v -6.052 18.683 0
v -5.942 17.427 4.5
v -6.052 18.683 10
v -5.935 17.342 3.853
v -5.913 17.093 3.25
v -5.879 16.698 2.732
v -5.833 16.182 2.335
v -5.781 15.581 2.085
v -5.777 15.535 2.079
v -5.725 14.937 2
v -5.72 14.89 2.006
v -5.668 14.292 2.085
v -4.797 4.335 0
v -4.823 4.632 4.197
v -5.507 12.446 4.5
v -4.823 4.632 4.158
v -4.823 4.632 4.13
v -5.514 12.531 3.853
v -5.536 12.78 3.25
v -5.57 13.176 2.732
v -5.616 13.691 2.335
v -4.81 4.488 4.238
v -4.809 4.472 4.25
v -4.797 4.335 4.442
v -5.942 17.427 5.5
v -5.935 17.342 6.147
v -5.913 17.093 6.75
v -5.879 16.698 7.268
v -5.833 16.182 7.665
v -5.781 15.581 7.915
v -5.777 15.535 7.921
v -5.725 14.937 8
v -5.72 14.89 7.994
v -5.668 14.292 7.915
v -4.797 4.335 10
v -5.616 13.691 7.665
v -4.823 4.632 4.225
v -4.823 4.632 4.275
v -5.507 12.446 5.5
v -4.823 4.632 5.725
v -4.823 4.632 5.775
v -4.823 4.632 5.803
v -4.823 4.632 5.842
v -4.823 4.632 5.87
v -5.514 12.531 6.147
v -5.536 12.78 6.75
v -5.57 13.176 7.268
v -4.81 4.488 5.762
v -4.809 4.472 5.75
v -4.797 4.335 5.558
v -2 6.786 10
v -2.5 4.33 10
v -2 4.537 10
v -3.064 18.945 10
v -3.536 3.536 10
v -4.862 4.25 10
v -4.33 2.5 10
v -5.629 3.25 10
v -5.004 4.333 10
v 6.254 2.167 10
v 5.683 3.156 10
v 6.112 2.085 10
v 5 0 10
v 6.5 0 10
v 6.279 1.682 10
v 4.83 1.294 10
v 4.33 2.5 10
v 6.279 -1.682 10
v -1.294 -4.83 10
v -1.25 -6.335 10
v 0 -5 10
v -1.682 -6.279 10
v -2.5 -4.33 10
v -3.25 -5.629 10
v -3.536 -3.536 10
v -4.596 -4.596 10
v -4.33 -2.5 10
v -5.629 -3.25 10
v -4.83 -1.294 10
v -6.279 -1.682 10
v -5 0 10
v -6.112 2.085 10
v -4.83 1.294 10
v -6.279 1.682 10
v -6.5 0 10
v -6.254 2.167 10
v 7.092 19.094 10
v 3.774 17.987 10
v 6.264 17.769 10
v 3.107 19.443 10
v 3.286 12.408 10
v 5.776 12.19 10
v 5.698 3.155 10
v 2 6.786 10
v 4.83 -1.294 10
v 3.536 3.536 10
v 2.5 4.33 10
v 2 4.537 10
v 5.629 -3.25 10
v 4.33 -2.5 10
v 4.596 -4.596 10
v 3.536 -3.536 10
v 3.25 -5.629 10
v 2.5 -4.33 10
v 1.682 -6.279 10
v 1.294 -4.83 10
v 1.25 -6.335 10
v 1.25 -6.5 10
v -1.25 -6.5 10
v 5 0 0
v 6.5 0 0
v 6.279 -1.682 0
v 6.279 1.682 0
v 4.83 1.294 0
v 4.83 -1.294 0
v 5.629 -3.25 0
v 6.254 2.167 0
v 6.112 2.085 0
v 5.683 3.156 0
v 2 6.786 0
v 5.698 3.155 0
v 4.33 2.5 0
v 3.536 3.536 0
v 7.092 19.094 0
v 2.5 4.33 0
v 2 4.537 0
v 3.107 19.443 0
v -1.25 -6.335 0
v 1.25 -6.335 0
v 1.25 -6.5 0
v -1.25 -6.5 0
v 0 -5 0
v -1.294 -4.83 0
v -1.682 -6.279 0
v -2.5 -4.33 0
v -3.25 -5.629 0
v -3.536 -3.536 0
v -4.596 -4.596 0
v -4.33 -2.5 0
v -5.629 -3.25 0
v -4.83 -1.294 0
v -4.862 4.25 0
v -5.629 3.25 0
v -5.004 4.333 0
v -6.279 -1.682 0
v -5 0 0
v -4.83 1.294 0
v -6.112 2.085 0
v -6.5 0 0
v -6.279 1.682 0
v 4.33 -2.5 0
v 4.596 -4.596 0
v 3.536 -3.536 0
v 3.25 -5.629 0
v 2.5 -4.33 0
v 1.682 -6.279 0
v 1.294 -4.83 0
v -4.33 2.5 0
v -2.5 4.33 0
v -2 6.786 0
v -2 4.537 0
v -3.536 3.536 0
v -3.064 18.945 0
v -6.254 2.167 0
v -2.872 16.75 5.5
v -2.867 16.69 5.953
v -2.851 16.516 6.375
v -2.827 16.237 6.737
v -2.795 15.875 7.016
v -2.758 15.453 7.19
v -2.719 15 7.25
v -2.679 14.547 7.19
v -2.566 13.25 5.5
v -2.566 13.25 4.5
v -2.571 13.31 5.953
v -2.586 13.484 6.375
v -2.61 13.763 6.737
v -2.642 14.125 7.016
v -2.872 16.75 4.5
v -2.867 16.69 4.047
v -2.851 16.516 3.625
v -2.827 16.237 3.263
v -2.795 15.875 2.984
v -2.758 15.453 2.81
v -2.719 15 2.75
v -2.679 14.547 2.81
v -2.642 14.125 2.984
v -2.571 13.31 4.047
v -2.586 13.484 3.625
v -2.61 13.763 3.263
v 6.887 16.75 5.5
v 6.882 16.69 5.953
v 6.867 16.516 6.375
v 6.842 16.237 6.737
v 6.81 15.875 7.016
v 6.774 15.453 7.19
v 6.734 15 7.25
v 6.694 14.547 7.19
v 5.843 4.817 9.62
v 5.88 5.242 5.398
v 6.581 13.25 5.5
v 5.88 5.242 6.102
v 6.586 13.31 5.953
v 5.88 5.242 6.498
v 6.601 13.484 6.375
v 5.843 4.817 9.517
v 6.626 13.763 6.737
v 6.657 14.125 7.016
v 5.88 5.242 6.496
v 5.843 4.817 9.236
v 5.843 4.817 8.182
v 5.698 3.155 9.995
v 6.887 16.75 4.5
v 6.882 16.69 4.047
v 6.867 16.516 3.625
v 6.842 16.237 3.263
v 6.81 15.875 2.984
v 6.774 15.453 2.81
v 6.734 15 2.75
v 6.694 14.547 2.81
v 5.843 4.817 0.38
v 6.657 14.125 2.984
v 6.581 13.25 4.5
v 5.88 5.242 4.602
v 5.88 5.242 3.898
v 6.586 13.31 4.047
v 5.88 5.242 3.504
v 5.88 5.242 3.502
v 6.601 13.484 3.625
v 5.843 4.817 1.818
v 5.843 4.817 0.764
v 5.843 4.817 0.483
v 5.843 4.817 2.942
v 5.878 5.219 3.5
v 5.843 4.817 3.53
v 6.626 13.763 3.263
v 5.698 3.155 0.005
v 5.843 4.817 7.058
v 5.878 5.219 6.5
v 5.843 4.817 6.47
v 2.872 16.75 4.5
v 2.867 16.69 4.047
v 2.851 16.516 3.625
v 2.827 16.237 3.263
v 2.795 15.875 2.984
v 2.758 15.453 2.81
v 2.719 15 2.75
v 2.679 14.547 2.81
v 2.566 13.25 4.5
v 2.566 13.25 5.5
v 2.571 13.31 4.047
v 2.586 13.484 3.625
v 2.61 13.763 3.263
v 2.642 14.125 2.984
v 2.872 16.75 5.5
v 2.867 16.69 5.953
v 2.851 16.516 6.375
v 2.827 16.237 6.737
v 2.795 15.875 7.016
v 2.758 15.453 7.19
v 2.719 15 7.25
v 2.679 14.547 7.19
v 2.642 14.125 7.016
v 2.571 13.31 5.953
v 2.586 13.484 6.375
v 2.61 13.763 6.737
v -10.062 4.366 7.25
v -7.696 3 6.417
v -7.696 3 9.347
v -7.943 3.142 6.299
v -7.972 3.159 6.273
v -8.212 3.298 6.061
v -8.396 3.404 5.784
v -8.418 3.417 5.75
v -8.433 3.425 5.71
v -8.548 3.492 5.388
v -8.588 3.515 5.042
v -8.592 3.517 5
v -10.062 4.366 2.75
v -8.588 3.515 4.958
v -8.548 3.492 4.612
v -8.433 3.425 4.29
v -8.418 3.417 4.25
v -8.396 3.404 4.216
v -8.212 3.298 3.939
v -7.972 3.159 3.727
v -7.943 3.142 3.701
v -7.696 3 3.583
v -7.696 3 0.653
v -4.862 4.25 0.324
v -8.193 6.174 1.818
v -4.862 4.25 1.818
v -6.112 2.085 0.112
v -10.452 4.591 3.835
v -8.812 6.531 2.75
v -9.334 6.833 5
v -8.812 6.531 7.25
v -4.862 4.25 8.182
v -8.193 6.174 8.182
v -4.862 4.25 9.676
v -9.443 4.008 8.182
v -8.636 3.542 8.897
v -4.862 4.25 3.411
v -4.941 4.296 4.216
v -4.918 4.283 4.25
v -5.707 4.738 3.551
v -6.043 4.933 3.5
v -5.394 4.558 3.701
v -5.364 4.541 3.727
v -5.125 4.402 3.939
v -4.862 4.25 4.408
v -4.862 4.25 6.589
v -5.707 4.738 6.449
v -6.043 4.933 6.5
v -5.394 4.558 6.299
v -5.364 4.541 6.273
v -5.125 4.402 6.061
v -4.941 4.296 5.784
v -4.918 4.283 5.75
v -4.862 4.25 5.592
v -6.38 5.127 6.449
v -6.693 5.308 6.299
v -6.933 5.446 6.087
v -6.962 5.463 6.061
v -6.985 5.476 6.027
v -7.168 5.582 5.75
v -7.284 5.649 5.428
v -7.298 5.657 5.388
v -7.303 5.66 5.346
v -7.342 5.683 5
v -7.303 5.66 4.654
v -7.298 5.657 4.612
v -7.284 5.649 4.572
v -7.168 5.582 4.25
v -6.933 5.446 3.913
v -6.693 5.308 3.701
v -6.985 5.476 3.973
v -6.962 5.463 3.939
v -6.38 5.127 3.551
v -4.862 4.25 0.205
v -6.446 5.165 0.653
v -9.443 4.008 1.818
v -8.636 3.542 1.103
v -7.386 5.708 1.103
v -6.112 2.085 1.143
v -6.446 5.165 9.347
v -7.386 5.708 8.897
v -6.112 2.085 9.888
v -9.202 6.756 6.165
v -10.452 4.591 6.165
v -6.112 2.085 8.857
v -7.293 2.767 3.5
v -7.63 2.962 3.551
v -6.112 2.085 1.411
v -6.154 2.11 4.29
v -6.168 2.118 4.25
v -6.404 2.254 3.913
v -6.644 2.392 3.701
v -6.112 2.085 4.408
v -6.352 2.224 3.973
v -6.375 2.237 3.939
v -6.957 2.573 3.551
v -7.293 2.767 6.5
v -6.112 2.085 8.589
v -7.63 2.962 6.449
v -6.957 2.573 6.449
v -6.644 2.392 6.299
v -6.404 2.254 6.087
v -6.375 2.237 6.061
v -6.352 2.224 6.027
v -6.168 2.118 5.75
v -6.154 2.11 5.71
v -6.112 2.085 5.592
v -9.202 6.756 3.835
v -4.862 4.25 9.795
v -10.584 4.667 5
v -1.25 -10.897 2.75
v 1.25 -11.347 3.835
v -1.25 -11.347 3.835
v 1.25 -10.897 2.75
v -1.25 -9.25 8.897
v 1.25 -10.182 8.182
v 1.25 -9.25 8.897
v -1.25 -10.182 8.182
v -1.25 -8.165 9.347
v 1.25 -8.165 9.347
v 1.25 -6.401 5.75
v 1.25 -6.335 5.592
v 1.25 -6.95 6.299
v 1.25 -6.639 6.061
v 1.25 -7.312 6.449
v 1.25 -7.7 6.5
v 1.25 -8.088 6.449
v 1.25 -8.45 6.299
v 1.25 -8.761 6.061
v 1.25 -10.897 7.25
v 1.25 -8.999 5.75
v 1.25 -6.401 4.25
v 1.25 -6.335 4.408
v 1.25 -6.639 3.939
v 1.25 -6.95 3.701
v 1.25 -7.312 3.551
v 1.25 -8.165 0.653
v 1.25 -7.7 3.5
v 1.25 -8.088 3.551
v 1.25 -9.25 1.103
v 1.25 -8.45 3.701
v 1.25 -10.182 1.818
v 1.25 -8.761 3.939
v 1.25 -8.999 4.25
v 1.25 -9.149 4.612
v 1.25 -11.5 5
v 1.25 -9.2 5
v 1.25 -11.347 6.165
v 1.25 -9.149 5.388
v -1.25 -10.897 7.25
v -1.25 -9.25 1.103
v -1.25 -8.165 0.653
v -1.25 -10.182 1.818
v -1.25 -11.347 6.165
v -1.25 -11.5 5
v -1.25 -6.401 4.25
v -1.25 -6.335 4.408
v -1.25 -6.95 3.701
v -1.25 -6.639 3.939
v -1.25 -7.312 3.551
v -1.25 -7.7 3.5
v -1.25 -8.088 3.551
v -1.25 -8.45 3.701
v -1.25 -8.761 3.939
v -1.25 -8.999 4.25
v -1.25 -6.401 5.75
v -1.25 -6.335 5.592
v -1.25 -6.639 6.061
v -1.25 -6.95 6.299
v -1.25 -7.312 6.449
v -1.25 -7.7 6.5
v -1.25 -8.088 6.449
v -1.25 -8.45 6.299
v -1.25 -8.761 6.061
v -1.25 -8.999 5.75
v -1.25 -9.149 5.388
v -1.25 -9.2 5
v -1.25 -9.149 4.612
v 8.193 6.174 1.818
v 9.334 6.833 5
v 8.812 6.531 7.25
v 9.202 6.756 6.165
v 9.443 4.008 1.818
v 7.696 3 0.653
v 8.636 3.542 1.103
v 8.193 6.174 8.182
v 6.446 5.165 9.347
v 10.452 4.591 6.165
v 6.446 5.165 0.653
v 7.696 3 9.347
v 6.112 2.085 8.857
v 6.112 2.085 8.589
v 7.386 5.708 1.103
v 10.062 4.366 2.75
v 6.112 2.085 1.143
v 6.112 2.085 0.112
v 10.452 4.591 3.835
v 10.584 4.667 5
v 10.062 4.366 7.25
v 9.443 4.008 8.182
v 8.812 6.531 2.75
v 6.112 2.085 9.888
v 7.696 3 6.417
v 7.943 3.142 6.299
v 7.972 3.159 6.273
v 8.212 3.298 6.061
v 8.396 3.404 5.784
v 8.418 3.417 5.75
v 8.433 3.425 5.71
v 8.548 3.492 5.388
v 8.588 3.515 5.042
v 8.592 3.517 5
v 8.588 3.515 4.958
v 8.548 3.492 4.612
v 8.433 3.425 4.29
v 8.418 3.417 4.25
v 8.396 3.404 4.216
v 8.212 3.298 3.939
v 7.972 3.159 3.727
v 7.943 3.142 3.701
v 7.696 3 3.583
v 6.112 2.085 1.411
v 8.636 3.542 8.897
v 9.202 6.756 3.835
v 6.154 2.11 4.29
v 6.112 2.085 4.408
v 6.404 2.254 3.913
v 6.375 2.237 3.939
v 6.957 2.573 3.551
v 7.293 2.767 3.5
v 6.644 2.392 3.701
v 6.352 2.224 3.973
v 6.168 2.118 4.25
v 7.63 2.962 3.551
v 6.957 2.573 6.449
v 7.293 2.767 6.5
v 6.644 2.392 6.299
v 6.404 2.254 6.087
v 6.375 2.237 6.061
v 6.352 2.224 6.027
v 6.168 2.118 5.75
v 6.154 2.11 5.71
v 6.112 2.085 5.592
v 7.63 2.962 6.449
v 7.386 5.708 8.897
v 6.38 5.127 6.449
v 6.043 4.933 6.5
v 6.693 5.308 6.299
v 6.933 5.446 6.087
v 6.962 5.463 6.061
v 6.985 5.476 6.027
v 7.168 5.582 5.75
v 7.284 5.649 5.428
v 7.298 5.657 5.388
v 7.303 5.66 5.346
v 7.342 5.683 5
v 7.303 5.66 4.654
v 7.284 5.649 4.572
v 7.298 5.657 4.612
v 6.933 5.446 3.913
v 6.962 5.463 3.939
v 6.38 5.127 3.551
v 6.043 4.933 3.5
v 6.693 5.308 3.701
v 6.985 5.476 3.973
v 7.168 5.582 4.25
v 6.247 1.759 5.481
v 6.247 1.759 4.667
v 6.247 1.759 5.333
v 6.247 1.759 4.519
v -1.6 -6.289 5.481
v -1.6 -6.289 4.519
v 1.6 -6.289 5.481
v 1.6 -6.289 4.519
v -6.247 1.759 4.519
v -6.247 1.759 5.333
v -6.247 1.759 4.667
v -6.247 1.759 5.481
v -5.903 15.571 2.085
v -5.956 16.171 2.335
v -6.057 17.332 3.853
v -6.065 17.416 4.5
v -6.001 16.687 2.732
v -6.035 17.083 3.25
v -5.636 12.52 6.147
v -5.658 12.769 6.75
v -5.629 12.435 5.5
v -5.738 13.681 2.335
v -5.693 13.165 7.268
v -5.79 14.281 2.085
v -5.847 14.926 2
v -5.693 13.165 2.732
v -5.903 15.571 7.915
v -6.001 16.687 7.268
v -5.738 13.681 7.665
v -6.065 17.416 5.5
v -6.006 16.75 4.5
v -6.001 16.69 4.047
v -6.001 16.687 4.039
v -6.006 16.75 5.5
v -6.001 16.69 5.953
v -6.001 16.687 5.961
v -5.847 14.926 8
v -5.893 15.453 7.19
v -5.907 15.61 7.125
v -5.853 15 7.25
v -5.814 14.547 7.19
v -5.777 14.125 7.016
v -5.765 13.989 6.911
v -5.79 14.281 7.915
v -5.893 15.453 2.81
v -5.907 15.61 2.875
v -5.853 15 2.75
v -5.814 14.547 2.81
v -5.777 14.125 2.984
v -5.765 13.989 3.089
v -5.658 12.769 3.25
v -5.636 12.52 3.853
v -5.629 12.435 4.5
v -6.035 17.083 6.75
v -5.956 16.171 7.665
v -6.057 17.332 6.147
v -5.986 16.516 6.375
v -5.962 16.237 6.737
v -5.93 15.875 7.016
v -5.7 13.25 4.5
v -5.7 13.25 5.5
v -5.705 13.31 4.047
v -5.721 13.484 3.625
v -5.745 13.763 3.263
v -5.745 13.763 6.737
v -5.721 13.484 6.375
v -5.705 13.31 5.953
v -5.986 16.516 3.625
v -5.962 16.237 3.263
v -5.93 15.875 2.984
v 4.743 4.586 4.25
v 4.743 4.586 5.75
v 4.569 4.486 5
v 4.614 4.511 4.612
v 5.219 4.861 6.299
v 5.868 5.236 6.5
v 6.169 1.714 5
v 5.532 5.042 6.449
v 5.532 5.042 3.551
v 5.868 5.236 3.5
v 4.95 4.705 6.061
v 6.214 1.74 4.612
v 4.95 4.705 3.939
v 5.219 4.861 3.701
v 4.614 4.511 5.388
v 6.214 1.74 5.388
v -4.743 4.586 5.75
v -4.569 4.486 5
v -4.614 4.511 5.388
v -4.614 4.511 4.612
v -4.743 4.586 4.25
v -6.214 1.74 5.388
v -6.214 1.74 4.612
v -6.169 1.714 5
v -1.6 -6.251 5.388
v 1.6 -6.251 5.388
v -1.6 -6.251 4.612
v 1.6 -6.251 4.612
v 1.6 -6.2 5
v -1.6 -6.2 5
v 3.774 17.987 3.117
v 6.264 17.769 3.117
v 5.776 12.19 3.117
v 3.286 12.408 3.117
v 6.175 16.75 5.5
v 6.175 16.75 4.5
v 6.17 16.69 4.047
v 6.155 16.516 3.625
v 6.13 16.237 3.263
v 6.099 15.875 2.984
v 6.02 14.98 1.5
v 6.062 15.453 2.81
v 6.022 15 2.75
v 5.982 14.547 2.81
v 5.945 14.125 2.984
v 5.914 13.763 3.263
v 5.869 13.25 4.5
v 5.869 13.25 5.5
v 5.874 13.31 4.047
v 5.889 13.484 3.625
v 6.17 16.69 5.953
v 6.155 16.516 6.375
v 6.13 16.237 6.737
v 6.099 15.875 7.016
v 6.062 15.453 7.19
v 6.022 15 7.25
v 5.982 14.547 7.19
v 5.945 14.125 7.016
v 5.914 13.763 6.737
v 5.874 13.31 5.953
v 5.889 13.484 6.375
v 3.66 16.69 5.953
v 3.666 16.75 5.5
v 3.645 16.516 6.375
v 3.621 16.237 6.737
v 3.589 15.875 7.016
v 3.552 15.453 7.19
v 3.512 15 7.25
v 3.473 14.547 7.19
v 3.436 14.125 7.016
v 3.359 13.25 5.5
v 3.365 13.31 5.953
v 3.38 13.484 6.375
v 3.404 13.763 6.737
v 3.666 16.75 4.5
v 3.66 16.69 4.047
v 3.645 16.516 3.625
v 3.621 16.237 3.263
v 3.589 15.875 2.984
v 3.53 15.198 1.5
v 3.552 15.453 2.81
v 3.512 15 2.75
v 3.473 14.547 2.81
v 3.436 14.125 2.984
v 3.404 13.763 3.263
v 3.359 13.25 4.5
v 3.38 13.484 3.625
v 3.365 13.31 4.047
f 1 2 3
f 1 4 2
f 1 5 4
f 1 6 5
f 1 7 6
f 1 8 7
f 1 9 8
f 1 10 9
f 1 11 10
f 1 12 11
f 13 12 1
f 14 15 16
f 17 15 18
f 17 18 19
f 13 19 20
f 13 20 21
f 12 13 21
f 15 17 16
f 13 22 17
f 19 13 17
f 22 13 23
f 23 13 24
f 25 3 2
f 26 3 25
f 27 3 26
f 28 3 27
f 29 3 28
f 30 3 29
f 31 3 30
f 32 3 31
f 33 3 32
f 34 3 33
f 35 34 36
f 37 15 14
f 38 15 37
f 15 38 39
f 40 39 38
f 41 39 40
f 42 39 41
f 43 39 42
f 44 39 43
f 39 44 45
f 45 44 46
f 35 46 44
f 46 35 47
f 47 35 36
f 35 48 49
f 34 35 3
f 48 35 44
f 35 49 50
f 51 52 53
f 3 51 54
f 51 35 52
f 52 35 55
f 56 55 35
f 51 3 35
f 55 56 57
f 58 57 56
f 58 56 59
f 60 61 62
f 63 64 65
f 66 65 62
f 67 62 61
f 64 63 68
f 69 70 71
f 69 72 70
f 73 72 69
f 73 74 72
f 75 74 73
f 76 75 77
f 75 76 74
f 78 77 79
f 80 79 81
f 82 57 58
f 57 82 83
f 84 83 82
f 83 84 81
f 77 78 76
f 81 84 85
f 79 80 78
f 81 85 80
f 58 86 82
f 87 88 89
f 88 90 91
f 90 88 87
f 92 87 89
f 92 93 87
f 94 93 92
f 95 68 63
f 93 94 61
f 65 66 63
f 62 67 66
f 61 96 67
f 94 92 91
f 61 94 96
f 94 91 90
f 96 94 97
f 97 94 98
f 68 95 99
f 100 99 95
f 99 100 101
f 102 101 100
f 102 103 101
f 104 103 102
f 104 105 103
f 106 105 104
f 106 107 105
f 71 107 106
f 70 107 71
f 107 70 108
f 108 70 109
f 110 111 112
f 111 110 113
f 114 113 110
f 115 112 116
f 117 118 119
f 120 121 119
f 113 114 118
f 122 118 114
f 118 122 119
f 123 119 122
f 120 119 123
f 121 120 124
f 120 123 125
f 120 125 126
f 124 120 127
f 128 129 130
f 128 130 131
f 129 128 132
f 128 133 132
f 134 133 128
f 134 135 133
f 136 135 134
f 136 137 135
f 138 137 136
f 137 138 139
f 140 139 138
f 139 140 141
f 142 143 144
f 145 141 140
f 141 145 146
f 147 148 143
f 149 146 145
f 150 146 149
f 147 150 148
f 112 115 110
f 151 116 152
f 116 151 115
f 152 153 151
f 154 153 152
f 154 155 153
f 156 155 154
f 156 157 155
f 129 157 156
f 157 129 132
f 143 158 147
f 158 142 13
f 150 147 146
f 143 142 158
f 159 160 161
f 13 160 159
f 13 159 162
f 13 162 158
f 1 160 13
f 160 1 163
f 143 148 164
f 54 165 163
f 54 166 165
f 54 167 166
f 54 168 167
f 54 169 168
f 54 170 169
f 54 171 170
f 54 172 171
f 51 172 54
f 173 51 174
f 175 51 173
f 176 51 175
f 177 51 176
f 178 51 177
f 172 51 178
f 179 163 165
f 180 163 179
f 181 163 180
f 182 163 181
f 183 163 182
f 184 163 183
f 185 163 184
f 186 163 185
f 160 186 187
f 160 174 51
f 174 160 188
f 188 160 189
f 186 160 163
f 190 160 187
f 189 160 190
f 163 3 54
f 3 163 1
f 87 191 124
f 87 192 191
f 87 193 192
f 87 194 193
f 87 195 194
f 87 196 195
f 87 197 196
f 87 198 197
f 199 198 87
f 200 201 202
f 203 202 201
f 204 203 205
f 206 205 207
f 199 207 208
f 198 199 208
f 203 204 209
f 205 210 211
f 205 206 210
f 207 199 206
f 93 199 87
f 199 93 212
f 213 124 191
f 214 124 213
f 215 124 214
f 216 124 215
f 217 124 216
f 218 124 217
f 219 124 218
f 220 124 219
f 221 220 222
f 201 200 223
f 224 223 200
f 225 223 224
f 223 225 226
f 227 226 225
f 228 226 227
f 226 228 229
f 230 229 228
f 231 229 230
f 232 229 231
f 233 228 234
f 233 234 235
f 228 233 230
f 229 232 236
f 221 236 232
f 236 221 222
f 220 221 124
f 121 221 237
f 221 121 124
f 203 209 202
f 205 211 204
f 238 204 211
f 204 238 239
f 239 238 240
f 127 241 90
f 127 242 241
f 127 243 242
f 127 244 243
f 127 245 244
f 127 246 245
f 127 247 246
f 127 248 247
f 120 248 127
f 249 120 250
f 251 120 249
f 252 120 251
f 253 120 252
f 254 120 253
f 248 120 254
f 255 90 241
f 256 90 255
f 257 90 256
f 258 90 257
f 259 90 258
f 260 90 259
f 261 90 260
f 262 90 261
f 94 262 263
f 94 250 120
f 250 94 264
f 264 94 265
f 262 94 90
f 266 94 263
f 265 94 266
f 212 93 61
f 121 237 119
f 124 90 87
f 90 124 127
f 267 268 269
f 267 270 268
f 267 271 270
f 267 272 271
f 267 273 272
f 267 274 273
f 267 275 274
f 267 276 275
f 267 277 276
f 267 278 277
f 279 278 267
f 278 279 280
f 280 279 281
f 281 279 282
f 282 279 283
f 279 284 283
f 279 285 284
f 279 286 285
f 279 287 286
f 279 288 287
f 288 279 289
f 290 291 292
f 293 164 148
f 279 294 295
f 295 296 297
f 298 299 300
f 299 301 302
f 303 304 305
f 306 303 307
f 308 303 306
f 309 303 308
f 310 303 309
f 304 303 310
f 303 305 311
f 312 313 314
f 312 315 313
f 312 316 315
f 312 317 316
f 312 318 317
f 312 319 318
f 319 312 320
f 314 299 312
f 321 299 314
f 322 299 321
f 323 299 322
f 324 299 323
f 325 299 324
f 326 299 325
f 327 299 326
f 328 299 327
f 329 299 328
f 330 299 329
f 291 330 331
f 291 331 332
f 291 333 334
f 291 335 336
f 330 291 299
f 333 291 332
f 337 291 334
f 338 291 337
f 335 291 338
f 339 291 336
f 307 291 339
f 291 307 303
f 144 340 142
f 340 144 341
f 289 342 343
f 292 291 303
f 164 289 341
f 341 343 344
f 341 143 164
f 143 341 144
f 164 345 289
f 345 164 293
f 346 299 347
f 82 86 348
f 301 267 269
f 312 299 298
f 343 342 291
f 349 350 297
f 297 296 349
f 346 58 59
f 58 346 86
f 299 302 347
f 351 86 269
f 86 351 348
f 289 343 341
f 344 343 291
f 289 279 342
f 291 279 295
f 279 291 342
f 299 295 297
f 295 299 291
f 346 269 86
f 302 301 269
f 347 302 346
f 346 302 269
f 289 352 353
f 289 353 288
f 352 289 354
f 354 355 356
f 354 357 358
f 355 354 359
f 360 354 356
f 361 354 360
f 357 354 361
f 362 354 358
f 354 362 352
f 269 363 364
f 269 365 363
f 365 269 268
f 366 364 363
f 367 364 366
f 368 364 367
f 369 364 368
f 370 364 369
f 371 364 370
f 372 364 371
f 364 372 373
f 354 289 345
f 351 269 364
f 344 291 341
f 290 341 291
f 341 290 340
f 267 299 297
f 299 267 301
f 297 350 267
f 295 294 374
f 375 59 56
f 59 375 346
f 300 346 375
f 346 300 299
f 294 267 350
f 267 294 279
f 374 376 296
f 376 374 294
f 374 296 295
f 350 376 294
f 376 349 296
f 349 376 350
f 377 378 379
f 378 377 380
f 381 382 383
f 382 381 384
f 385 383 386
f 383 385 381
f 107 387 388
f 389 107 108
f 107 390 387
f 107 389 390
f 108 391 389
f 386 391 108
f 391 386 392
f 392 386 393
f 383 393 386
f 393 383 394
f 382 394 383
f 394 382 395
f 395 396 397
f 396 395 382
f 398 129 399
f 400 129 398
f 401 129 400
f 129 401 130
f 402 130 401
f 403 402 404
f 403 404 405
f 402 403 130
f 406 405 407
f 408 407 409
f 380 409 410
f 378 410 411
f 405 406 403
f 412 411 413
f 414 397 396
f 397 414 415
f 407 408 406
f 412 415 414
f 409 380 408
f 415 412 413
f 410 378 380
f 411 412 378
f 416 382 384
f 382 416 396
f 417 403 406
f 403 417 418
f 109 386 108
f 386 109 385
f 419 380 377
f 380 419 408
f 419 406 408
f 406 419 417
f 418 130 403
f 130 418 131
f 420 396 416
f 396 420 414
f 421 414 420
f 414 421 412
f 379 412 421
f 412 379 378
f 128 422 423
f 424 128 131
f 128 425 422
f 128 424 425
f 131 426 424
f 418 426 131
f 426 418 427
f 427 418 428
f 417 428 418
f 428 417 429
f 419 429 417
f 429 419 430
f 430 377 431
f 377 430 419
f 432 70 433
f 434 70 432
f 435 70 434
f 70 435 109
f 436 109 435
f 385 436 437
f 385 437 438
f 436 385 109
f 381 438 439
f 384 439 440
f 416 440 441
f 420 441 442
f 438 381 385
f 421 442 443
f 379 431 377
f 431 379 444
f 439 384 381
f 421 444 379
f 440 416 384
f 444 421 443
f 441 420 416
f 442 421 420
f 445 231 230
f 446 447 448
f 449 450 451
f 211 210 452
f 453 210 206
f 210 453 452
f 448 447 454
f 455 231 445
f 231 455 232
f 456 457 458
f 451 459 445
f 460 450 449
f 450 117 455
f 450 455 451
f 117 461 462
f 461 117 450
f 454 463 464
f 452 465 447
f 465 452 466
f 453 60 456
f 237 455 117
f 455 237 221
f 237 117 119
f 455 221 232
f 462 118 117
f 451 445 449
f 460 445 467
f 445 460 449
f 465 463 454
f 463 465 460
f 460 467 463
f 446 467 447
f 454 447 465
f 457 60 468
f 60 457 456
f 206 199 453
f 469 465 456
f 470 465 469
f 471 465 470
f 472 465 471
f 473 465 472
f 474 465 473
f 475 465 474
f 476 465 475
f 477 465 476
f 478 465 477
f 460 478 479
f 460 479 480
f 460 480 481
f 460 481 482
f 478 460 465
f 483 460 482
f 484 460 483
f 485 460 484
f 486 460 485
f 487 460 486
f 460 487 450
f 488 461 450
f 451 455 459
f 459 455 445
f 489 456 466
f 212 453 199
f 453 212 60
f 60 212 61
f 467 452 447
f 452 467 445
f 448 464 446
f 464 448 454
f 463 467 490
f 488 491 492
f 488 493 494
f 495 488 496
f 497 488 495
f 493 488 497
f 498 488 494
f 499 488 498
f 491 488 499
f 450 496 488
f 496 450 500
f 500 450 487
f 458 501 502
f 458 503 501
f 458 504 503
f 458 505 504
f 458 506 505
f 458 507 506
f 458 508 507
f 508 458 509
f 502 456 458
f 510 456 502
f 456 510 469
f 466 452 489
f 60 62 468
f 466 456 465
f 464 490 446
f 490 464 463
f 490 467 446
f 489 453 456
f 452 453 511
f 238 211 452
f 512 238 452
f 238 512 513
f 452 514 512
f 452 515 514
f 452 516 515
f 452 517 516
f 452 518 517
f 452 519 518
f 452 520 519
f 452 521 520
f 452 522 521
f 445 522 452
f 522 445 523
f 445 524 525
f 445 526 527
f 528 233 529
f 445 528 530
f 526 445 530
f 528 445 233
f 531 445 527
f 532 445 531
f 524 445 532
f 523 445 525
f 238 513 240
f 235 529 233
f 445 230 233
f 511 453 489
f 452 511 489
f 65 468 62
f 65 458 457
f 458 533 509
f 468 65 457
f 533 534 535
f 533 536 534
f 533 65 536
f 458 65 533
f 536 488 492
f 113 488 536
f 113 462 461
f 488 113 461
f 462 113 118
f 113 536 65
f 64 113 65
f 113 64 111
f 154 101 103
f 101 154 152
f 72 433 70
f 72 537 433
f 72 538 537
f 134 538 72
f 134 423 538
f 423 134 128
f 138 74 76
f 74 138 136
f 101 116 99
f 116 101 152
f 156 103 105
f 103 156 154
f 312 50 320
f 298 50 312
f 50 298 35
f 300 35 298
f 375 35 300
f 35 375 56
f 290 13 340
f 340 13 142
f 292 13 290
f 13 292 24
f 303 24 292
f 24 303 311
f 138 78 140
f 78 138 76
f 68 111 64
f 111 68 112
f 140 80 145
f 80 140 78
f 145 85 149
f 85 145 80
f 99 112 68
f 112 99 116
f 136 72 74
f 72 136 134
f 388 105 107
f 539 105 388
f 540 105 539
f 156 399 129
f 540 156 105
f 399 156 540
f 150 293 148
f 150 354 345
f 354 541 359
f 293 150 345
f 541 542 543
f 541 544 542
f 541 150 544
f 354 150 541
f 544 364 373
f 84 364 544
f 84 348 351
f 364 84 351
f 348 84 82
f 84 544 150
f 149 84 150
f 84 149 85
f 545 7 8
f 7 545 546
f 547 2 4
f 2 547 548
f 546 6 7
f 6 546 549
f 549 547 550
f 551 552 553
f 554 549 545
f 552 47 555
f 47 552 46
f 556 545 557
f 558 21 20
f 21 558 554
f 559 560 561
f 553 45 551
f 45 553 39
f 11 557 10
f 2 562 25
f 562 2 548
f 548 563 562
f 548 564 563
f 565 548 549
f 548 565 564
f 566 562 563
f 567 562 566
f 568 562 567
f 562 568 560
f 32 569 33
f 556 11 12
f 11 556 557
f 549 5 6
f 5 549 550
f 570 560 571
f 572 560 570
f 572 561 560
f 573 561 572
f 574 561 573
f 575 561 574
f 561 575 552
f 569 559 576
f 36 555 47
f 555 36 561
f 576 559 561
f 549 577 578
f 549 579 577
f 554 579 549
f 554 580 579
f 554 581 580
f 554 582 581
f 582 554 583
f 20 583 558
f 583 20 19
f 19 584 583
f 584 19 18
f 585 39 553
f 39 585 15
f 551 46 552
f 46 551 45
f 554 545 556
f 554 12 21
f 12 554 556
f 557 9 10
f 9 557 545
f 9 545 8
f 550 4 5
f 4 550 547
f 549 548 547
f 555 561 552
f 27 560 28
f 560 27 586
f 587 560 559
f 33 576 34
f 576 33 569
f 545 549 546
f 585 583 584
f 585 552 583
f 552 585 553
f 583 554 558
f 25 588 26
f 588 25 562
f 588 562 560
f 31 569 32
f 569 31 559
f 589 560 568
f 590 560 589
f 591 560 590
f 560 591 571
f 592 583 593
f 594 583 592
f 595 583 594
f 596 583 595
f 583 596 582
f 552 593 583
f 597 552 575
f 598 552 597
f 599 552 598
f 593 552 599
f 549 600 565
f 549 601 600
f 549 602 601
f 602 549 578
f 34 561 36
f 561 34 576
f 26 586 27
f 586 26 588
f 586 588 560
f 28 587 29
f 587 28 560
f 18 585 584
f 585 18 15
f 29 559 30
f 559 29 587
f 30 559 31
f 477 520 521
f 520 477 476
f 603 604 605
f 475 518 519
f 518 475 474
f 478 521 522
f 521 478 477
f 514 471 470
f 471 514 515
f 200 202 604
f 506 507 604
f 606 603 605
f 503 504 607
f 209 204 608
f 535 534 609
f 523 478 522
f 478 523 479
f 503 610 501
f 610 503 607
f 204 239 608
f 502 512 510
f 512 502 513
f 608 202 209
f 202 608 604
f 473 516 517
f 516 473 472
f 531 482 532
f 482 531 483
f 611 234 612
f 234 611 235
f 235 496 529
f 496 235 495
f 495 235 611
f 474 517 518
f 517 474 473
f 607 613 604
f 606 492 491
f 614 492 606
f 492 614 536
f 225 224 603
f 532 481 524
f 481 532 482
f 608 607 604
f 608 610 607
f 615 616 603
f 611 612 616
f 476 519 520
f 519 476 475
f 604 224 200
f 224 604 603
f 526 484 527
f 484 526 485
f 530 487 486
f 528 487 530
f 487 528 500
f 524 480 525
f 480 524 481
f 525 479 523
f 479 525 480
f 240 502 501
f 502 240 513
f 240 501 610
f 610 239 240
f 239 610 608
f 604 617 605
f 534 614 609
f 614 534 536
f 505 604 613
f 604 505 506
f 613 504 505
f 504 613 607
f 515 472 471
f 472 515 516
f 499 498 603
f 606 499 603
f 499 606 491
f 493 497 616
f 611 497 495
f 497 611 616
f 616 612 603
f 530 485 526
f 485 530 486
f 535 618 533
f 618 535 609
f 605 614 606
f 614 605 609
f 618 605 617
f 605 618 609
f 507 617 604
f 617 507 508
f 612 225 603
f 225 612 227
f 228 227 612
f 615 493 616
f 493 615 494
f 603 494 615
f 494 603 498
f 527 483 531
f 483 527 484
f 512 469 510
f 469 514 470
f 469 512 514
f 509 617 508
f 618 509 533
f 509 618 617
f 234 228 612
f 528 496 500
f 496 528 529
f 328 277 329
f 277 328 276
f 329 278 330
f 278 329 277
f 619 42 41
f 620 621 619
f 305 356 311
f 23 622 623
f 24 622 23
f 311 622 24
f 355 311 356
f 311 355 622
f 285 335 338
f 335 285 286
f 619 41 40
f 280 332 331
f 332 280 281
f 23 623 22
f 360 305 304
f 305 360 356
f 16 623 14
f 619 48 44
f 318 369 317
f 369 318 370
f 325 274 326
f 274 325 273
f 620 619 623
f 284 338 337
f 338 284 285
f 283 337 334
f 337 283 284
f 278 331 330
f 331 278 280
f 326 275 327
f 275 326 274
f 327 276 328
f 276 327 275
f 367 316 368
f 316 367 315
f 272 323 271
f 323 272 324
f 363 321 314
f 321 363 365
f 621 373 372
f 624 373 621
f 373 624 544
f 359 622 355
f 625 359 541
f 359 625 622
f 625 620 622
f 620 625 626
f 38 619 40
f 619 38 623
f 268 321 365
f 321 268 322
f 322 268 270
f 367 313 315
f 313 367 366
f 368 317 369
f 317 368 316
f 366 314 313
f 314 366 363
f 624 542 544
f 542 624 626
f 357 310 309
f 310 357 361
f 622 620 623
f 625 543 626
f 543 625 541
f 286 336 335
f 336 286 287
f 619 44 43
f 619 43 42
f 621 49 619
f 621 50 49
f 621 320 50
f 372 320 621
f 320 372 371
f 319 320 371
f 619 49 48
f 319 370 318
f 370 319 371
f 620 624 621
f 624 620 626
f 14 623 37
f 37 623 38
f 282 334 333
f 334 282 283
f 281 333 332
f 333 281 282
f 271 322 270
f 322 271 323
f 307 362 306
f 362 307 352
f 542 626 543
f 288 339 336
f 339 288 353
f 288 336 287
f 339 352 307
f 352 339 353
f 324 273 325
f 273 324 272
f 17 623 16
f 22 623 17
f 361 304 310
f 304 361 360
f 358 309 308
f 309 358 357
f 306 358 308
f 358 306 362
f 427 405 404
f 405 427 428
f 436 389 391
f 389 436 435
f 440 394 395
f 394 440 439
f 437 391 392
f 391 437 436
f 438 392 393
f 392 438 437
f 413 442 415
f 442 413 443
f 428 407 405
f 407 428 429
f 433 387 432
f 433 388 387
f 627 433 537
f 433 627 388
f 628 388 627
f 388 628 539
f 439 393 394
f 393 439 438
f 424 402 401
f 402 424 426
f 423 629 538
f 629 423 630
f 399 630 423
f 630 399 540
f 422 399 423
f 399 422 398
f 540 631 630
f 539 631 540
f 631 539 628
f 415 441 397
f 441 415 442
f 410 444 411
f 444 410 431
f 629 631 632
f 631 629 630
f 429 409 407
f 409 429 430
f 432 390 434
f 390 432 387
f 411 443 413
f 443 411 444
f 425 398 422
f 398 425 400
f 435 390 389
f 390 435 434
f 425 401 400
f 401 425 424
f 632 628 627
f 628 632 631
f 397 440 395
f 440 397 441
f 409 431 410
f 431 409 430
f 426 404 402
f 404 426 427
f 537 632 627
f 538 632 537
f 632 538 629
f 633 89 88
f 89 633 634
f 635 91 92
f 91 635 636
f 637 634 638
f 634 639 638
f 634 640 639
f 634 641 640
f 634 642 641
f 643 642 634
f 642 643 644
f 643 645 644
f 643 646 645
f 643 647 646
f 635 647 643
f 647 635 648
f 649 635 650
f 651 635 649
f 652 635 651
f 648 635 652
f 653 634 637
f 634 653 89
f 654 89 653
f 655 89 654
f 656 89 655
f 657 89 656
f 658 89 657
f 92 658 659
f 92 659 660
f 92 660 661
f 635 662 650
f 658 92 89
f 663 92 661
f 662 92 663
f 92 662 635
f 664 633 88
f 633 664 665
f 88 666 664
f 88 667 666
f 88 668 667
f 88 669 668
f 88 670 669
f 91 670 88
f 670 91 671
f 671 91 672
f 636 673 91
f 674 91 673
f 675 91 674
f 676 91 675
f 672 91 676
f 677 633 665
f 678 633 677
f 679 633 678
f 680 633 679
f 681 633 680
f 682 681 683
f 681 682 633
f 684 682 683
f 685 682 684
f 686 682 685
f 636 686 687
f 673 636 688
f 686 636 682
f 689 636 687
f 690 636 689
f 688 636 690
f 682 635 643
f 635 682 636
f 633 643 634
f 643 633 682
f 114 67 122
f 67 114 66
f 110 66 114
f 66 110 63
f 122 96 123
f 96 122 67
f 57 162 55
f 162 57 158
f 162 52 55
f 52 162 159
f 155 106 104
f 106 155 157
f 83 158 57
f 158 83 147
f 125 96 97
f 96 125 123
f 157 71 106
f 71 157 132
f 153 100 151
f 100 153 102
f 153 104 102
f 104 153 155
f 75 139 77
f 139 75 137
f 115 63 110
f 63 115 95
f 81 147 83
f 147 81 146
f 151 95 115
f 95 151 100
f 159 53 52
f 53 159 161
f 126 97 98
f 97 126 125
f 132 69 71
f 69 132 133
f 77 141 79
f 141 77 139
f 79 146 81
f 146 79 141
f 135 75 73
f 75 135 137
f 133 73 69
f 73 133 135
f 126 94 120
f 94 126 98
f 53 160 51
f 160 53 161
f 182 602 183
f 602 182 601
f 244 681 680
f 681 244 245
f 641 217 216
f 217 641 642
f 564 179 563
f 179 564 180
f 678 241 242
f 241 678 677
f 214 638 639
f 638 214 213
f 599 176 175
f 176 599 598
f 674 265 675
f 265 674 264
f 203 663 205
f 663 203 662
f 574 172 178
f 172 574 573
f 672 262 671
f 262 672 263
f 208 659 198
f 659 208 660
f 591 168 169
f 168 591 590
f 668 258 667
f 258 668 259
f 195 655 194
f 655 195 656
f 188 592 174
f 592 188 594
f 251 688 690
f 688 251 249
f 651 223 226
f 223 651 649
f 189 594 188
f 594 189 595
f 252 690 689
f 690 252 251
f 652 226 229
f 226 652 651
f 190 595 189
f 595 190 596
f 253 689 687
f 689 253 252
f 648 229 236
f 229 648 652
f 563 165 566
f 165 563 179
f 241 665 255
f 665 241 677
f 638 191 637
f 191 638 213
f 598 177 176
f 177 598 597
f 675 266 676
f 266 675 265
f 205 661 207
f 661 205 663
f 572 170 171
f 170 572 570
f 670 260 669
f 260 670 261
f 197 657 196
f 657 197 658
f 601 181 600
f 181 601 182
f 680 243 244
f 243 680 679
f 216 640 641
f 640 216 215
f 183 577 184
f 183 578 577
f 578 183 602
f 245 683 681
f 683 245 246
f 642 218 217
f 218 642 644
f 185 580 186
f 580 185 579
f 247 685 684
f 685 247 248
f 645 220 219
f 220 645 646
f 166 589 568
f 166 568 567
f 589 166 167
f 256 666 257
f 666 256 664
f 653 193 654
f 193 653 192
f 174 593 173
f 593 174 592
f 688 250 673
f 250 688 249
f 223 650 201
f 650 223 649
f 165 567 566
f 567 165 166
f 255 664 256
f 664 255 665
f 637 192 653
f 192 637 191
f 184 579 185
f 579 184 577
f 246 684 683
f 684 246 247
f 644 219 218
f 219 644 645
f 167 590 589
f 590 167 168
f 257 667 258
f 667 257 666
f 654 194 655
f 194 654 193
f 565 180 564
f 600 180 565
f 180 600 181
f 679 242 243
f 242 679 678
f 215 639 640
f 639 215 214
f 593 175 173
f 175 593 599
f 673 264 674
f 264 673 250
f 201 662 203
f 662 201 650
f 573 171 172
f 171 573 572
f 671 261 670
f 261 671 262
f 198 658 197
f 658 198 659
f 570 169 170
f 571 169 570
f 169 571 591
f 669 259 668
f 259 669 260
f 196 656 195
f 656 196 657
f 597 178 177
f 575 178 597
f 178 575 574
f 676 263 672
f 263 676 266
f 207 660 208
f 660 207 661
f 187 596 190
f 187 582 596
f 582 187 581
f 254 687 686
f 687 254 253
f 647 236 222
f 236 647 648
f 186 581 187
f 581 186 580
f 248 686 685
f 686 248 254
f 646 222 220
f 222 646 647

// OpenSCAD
// file: lib/sweep.scad
// sweep.scad
//
// This code is copied from
// https://github.com/openscad/list-comprehension-demos
// and
// https://github.com/openscad/scad-utils
// to make hangprinter repo self-contained
// It was included in order to make the worm drive parametric
// In future OpenSCAD (or other script CAD programs)
// worm drives should be will be more easily constructed without
// this user space defined sweep operation.
// See OpenSCAD discussion at:
// https://github.com/openscad/openscad/issues/114

// Look into files
// lists.scad
// X transformations.scad
// linalg.scad
// se3.scad
// so3.scad


// Include modules and fcts:

/// linalg.scad
function vec3(p) = len(p) < 3 ? concat(p,0) : p;
function vec4(p) = let (v3=vec3(p)) len(v3) < 4 ? concat(v3,1) : v3;
function take3(v) = [v[0],v[1],v[2]];
function tail3(v) = [v[3],v[4],v[5]];
function construct_Rt(R,t) = [concat(R[0],t[0]),concat(R[1],t[1]),concat(R[2],t[2]),[0,0,0,1]];

/// so3.scad

function se3_exp_2(t,w) = se3_exp_2_0(t,w,w*w);
function se3_exp_2_0(t,w,theta_sq) =
se3_exp_23(
	so3_exp_2(theta_sq),
	C = (1.0 - theta_sq/20) / 6,
	t=t,w=w);

// Taylor series expansions close to 0
function so3_exp_1(theta_sq) = [
	1 - 1/6*theta_sq,
	0.5
];

function rodrigues_so3_exp(w, A, B) = [
  [1.0 - B*(w[1]*w[1] + w[2]*w[2]), B*(w[0]*w[1]) - A*w[2],          B*(w[0]*w[2]) + A*w[1]],
  [B*(w[0]*w[1]) + A*w[2],          1.0 - B*(w[0]*w[0] + w[2]*w[2]), B*(w[1]*w[2]) - A*w[0]],
  [B*(w[0]*w[2]) - A*w[1],          B*(w[1]*w[2]) + A*w[0],          1.0 - B*(w[0]*w[0] + w[1]*w[1])]
];

function so3_exp_3_0(theta_deg, inv_theta) = [
	sin(theta_deg) * inv_theta,
	(1 - cos(theta_deg)) * (inv_theta * inv_theta)
];

/// se3.scad
function combine_se3_exp(w, ABt) = construct_Rt(rodrigues_so3_exp(w, ABt[0], ABt[1]), ABt[2]);
function se3_exp_1(t,w) = concat(
	so3_exp_1(w*w),
	[t + 0.5 * cross(w,t)]
);

function se3_exp_3(t,w) = se3_exp_3_0(t,w,sqrt(w*w)*180/PI,1/sqrt(w*w));

function se3_exp_23(AB,C,t,w) =
[AB[0], AB[1], t + AB[1] * cross(w,t) + C * cross(w,cross(w,t)) ];

function se3_exp_3_0(t,w,theta_deg,inv_theta) =
se3_exp_23(
	so3_exp_3_0(theta_deg = theta_deg, inv_theta = inv_theta),
	C = (1 - sin(theta_deg) * inv_theta) * (inv_theta * inv_theta),
t=t,w=w);

function se3_exp(mu) = se3_exp_0(t=take3(mu),w=tail3(mu)/180*PI);

function se3_exp_0(t,w) =
combine_se3_exp(w,
// Evaluate by Taylor expansion when near 0
	w*w < 1e-8
	? se3_exp_1(t,w)
	: w*w < 1e-6
	  ? se3_exp_2(t,w)
	  : se3_exp_3(t,w)
);


/// lists.scad
/*!
  Flattens a list one level:

  flatten([[0,1],[2,3]]) => [0,1,2,3]
*/
function flatten(list) = [ for (i = list, v = i) v ];
/*!
  Extracts a subarray from index begin (inclusive) to end (exclusive)

  subarray([1,2,3,4], 1, 2) => [2,3]
*/
function subarray(list,begin=0,end=-1) = [
    let(end = end < 0 ? len(list) : end)
      for (i = [begin : 1 : end-1])
        list[i]
];

/// transformations.scad
//********* Create modifying matrices ***************//
/*!
  Creates a rotation matrix

  xyz = euler angles = rz * ry * rx
  axis = rotation_axis * rotation_angle
*/
function rotation(xyz=undef, axis=undef) =
	xyz != undef && axis != undef ? undef :
	xyz == undef  ? se3_exp([0,0,0,axis[0],axis[1],axis[2]]) :
	len(xyz) == undef ? rotation(axis=[0,0,xyz]) :
	(len(xyz) >= 3 ? rotation(axis=[0,0,xyz[2]]) : identity4()) *
	(len(xyz) >= 2 ? rotation(axis=[0,xyz[1],0]) : identity4()) *
(len(xyz) >= 1 ? rotation(axis=[xyz[0],0,0]) : identity4());

/*!
  Creates a scaling matrix
*/
function scaling(v) = [
	[v[0],0,0,0],
	[0,v[1],0,0],
	[0,0,v[2],0],
	[0,0,0,1],
];

/*!
  Creates a translation matrix
*/
function translation(v) = [
	[1,0,0,v[0]],
	[0,1,0,v[1]],
	[0,0,1,v[2]],
	[0,0,0,1],
];


function project(x) = subarray(x,end=len(x)-1) / x[len(x)-1];

function transform(m, list) = [for (p=list) project(m * vec4(p))];

function to_3d(list) = [ for(v = list) vec3(v) ];

module sweep(shape, path_transforms, closed=false) {

    pathlen = len(path_transforms);
    segments = pathlen + (closed ? 0 : -1);
    shape3d = to_3d(shape);

    function sweep_points() =
      flatten([for (i=[0:pathlen-1])
        transform(path_transforms[i], shape3d)]);

    function loop_faces() = [let (facets=len(shape3d))
        for(s=[0:segments-1], i=[0:facets-1])
          [(s%pathlen) * facets + i,
           (s%pathlen) * facets + (i + 1) % facets,
           ((s + 1) % pathlen) * facets + (i + 1) % facets,
           ((s + 1) % pathlen) * facets + i]];

    bottom_cap = closed ? [] : [[for (i=[len(shape3d)-1:-1:0]) i]];
    top_cap = closed ? [] : [
      [for (i=[0:len(shape3d)-1])
        i+len(shape3d)*(pathlen-1)]];
    polyhedron(points = sweep_points(),
               faces  = concat(loop_faces(),
                               bottom_cap,
                               top_cap),
               convexity=5);
}
// file: lib/parameters.scad
// Parameters shared between modules
Base_th = 2;
Beam_width = 15;
Wiggle = 0.25;
Fat_beam_width = Beam_width + Wiggle;
Beam_length = 400;
Wall_th = 2.5;
Min_beam_width = 12.5;
Max_beam_width = 17.5;
Zip_th = 2;
Zip_h = Zip_th + Max_beam_width - Min_beam_width;
Zip_w = 5.0;
Nema17_cube_width          = 42.43;
Nema17_screw_hole_width    = 43.74; // Opposite corner screws
Nema17_ring_diameter       = 22;
Nema17_cube_height         = 39.36;
Nema17_shaft_height        = 63.65;
Nema17_ring_height         = 2;
Nema17_shaft_radius        = 5/2;

Nema23_cube_width          = 56.4;
Nema23_cube_height         = 54.5;
Nema23_shaft_height        = 100;
Nema23_screw_hole_width    = 66.31; // Opposite corner screws
b608_outer_dia = 22.2; // Should probably be 22.1 for a snug fit with finer printers
b608_width = 7.05;
b608_bore_r = 4;
b608_vgroove_big_r = b608_outer_dia/2 + 2.5;
b608_vgroove_small_r = b608_outer_dia/2 + 0.5;
b608_ugroove_big_r = b608_vgroove_big_r;
b608_ugroove_small_r = b608_vgroove_small_r;
Gap_between_sandwich_and_plate = 1.5 + Base_th; // 1.5 mm for wiggle
Motor_bracket_flerp_r = 6;
Motor_bracket_flerp = 14;
Motor_bracket_cw = Nema17_cube_width + 6;
Motor_bracket_att_ang = 50;
Mounting_screw_d = 3.5;
Mounting_screw_head_d = 14;
Spool_outer_wall_th = 4;

// Corner clamp parameters
Cc_l1 = (Fat_beam_width+2*Wall_th)*2*sqrt(3);
Cc_rad_b = 4;
Cc_action_point_from_mid = Cc_l1/sqrt(3)-2*Cc_rad_b-7;
Cc_plastic_length = sqrt(Cc_action_point_from_mid*Cc_action_point_from_mid
                       - (Cc_action_point_from_mid/2)*(Cc_action_point_from_mid/2));
Eyelet_extra_dist = 0.75;
Eyelet_diameter = 4.30;
Eyelet_flange_diameter = 5.93;

// The distance between the two action points on the mover
Sidelength = Beam_length + 2*Cc_plastic_length;

/////// Gear parameters ////////////
Circular_pitch = 262;
Motor_teeth = 10;
Gear_height = 21.4-3;
Motor_pitch                      = (Motor_teeth*Circular_pitch/360);
Motor_pitch_diametrial           = Motor_teeth/(2*Motor_pitch);
Motor_outer_radius               = Motor_pitch + 1/Motor_pitch_diametrial;
Spool_teeth = 100;
Spool_r = 75;
Spool_height = 8;
Spool_pitch                      = (Spool_teeth*Circular_pitch/360);
Spool_pitch_diametrial           = Spool_teeth/(2*Spool_pitch);
Spool_outer_radius               = Spool_pitch + 1/Spool_pitch_diametrial;
Sep_disc_radius = (161.83+1)/2; // Made to match 255 teeth gt2 pulley + 1
Motor_bracket_depth = Gear_height+1+7+Nema17_ring_height+1+Gap_between_sandwich_and_plate;
Spool_core_flerp0 = 16+3;

/////// Lineroller parameters ////////////
b623_width  = 4;
b623_bore_r = 3/2;
b623_big_ugroove_big_r = (12+3)/2;
b623_big_ugroove_small_r = (10+3)/2;
b623_outer_dia = 10;
b623_ugroove_room_to_grow_r = 1.1;
b608_ugroove_room_to_grow_r = 1.1;
b623_flange_dia = 11.5;
b623_flange_room_to_grow_r = 0.5;

Depth_of_roller_base = 18;
Roller_flerp = 6;
Roller_l = 42;
Roller_fl = (Roller_l - Depth_of_roller_base)/2;

Line_roller_wall_th = 5;

Line_roller_ABCD_winch_h =  Gap_between_sandwich_and_plate
                           + Sep_disc_radius
                           - Spool_r
                           + Depth_of_roller_base/2
                           + b608_vgroove_small_r;

Ptfe_r = 2.1;
Roller_base_r = 8;
Screw_h = 2;
Screw_head_h = 2;
M3_screw_head_d = 5.8;
Spool_center_bearing_wall_th = 5;
Corner_clamp_bearings_center_to_center = max(45, (b623_big_ugroove_big_r + b623_ugroove_room_to_grow_r)*2 + 5);

//// Lineroller anchor parameters /////

Front_bearing_x = -5 - 5;
Move_tower = -12.2;
Lower_bearing_z = 13;
Higher_bearing_z = Lower_bearing_z + Corner_clamp_bearings_center_to_center;

//// Cable Clamp parameters /////
Bit_width = 12;
Cable_r=3.5;

// Belt drive parameters
GT2_belt_width = 6.5;
GT2_gear_height = GT2_belt_width + 2;
GT2_motor_gear_height = 16;
GT2_motor_gear_outer_dia = 16;
GT2_spool_gear_outer_dia = 161.82; // Echoed from GT2_spool_gear.scad
GT2_spool_gear_teeth = 255;
GT2_motor_gear_teeth = 20;
Torx_depth = GT2_gear_height/2;
Belt_roller_h = 56;
Belt_thickness = 1.4;

Belt_roller_space_between_walls = 2*b623_width + 0.8;
Belt_roller_wall_th = (Depth_of_roller_base - Belt_roller_space_between_walls)/2+2;
Belt_roller_top_adj_screw_x = Depth_of_roller_base/2-3.7;
Belt_roller_top_adj_screw_y = Belt_roller_space_between_walls/2+2;
Belt_roller_containing_cube_ywidth = Belt_roller_space_between_walls+8.5;
Belt_roller_containing_cube_xwidth = 14;
Belt_roller_insert_h = 18;

Sandwich_ABCD_width = 2*(1+Spool_height) + GT2_gear_height;
Sandwich_I_width = 5*(1+Spool_height) + GT2_gear_height;
Spool_core_halve_width = 14.3;
Spool_core_impression_in_spool_cover = 0;
Spool_cover_bottom_th = 1.5;
Spool_cover_shoulder = 2;
Spool_core_cover_adj = Spool_cover_shoulder+Spool_cover_bottom_th-Spool_core_impression_in_spool_cover;
Spool_core_tot_length = 136.458;
Spool_cover_outer_r = Sep_disc_radius + 2;
Gap_between_sep_disc_and_spool_cover = 0.55;

Smooth_rod_length_ABCD = Sandwich_ABCD_width + 2*(Spool_core_halve_width-Spool_core_impression_in_spool_cover + Spool_cover_bottom_th + Spool_cover_shoulder);
Smooth_rod_length_I = Sandwich_I_width + 2*(Spool_core_halve_width-Spool_core_impression_in_spool_cover + Spool_cover_bottom_th + Spool_cover_shoulder);
echo("Smooth_rod_length_ABCD", Smooth_rod_length_ABCD);
echo("Smooth_rod_length_I", Smooth_rod_length_I);

Spool_cover_tot_height = Spool_cover_bottom_th+Spool_cover_shoulder+1+Spool_height;
Spool_cover_I_left_tot_height = Spool_cover_shoulder+Spool_cover_bottom_th+2*(Spool_height+1);
Spool_cover_I_right_tot_height = Spool_cover_shoulder+Spool_cover_bottom_th+3*(Spool_height+1);

spd = Spool_height+GT2_gear_height;
// Horizontal_deflector_cube_y_size must be exact this number
// because we want to deflect AB-lines
// 60 degrees on the ceiling unit, and we want to put two
// deflectors in a row and get a distance between bearings
// that maintain the distance d when deflecting 60 degrees
Horizontal_deflector_cube_y_size = (2/sqrt(3))*spd;

Belt_roller_bearing_xpos = Sep_disc_radius + b623_outer_dia/2+Belt_thickness;



Pen_holder_w = 55;
Pen_holder_rail_w = 36;
Pen_holder_bottom_th = 7;

u_width = 7;
Stick_extra = 5;
Stick_length = b623_big_ugroove_big_r*2 + 7*2 + 1*2 + Stick_extra;
Stick_d = 12.5;

Ram_1000_3dpotter_tube_inner_d = 70;
Ram_1000_3dpotter_tube_outer_d = Ram_1000_3dpotter_tube_inner_d + 2*3.3;
Ram_1000_3dpotter_top_square_width = 31.7;

// 6 mm nozzle
// Wasp_xl30_funnel_d1 = 7.2;
// Wasp_xl30_funnel_d2 = 26.3;
// Wasp_xl30_funnel_h = 18.59;

// 4 mm nozzle
Wasp_xl30_funnel_d1 = 5.2;
Wasp_xl30_funnel_d2 = 26.0;
Wasp_xl30_funnel_h = 17.7;



// Colors
Color0 = "sandybrown";
Color0_alpha = 0.55;
Color1 = [0.81,0.73,0.05];
Color1_alpha = 1.0;
Color2 = [0.99,0.99,0.99];
Color2_alpha = 0.8;
Spool_cover_alpha = 0.5;
Color_carbon = [0.2,0.2,0.2];
//Color_line = [0.9,0.35,0.35];
Color_line=[1.0,0.2,0.2];
Color_motor=[0.5,0.4,0.9];
// main file
use <lib/util.scad>

$fn=4*6;

difference(){
  rot = 60;
  union(){
    cylinder(d=13, h=10);
    mirror([1,0,0])
      for(k=[0,1]) mirror([k,0,0])
        translate([1.8, 4.5, 0])
          rotate([0,0,-5])
            translate([0,-k,0])
              cube([3+k, 14.5+k*1.5, 10]);

    for(ang=[rot,rot+120,rot-120])
      rotate([0,0,ang])
        translate([-2.5/2, 13/2-1, 0])
          hull(){
            cube([2.5, 1, 10]);
            translate([0,1.5,5])
              rotate([0,90,0])
                cylinder(d=9, h=2.5);
          }
          //cube([2.5, 4, 10]);

    translate([0,15,5])
      rotate([0,90,0])
        hull(){
          translate([-0.5,0,-5])
            rotate([-5,0,0])
              cylinder(d=5, h=1.7, center=true);
          translate([0.5,0,-5])
            rotate([-5,0,0])
            cylinder(d=5, h=1.7, center=true);
        }
  }
  translate([0,0,-1])
    cylinder(d=10, h=12);
  translate([-4/2,0,-1])
    cube([4, 10, 12]);
  translate([0,15,5])
    rotate([0,90,0])
      hull(){
        translate([-0.5,0,0])
          cylinder(d=3.5, h=14, center=true);
        translate([0.5,0,0])
          cylinder(d=3.5, h=14, center=true);
      }
  mirror([1,0,0])
    translate([-2.9,8,0])
      rotate([0,0,90+5])
        translate([4.425,0,1.5])
          point_cube([5.6,2.5,11],120);
  for(ang=[rot-30,rot+120-30,rot-120-30])
    rotate([0,0,ang])
      translate([13/2 + 1.2, 0, 5])
        rotate([90,0,0])
          cylinder(d=3, h=3.2, center=true);
}
